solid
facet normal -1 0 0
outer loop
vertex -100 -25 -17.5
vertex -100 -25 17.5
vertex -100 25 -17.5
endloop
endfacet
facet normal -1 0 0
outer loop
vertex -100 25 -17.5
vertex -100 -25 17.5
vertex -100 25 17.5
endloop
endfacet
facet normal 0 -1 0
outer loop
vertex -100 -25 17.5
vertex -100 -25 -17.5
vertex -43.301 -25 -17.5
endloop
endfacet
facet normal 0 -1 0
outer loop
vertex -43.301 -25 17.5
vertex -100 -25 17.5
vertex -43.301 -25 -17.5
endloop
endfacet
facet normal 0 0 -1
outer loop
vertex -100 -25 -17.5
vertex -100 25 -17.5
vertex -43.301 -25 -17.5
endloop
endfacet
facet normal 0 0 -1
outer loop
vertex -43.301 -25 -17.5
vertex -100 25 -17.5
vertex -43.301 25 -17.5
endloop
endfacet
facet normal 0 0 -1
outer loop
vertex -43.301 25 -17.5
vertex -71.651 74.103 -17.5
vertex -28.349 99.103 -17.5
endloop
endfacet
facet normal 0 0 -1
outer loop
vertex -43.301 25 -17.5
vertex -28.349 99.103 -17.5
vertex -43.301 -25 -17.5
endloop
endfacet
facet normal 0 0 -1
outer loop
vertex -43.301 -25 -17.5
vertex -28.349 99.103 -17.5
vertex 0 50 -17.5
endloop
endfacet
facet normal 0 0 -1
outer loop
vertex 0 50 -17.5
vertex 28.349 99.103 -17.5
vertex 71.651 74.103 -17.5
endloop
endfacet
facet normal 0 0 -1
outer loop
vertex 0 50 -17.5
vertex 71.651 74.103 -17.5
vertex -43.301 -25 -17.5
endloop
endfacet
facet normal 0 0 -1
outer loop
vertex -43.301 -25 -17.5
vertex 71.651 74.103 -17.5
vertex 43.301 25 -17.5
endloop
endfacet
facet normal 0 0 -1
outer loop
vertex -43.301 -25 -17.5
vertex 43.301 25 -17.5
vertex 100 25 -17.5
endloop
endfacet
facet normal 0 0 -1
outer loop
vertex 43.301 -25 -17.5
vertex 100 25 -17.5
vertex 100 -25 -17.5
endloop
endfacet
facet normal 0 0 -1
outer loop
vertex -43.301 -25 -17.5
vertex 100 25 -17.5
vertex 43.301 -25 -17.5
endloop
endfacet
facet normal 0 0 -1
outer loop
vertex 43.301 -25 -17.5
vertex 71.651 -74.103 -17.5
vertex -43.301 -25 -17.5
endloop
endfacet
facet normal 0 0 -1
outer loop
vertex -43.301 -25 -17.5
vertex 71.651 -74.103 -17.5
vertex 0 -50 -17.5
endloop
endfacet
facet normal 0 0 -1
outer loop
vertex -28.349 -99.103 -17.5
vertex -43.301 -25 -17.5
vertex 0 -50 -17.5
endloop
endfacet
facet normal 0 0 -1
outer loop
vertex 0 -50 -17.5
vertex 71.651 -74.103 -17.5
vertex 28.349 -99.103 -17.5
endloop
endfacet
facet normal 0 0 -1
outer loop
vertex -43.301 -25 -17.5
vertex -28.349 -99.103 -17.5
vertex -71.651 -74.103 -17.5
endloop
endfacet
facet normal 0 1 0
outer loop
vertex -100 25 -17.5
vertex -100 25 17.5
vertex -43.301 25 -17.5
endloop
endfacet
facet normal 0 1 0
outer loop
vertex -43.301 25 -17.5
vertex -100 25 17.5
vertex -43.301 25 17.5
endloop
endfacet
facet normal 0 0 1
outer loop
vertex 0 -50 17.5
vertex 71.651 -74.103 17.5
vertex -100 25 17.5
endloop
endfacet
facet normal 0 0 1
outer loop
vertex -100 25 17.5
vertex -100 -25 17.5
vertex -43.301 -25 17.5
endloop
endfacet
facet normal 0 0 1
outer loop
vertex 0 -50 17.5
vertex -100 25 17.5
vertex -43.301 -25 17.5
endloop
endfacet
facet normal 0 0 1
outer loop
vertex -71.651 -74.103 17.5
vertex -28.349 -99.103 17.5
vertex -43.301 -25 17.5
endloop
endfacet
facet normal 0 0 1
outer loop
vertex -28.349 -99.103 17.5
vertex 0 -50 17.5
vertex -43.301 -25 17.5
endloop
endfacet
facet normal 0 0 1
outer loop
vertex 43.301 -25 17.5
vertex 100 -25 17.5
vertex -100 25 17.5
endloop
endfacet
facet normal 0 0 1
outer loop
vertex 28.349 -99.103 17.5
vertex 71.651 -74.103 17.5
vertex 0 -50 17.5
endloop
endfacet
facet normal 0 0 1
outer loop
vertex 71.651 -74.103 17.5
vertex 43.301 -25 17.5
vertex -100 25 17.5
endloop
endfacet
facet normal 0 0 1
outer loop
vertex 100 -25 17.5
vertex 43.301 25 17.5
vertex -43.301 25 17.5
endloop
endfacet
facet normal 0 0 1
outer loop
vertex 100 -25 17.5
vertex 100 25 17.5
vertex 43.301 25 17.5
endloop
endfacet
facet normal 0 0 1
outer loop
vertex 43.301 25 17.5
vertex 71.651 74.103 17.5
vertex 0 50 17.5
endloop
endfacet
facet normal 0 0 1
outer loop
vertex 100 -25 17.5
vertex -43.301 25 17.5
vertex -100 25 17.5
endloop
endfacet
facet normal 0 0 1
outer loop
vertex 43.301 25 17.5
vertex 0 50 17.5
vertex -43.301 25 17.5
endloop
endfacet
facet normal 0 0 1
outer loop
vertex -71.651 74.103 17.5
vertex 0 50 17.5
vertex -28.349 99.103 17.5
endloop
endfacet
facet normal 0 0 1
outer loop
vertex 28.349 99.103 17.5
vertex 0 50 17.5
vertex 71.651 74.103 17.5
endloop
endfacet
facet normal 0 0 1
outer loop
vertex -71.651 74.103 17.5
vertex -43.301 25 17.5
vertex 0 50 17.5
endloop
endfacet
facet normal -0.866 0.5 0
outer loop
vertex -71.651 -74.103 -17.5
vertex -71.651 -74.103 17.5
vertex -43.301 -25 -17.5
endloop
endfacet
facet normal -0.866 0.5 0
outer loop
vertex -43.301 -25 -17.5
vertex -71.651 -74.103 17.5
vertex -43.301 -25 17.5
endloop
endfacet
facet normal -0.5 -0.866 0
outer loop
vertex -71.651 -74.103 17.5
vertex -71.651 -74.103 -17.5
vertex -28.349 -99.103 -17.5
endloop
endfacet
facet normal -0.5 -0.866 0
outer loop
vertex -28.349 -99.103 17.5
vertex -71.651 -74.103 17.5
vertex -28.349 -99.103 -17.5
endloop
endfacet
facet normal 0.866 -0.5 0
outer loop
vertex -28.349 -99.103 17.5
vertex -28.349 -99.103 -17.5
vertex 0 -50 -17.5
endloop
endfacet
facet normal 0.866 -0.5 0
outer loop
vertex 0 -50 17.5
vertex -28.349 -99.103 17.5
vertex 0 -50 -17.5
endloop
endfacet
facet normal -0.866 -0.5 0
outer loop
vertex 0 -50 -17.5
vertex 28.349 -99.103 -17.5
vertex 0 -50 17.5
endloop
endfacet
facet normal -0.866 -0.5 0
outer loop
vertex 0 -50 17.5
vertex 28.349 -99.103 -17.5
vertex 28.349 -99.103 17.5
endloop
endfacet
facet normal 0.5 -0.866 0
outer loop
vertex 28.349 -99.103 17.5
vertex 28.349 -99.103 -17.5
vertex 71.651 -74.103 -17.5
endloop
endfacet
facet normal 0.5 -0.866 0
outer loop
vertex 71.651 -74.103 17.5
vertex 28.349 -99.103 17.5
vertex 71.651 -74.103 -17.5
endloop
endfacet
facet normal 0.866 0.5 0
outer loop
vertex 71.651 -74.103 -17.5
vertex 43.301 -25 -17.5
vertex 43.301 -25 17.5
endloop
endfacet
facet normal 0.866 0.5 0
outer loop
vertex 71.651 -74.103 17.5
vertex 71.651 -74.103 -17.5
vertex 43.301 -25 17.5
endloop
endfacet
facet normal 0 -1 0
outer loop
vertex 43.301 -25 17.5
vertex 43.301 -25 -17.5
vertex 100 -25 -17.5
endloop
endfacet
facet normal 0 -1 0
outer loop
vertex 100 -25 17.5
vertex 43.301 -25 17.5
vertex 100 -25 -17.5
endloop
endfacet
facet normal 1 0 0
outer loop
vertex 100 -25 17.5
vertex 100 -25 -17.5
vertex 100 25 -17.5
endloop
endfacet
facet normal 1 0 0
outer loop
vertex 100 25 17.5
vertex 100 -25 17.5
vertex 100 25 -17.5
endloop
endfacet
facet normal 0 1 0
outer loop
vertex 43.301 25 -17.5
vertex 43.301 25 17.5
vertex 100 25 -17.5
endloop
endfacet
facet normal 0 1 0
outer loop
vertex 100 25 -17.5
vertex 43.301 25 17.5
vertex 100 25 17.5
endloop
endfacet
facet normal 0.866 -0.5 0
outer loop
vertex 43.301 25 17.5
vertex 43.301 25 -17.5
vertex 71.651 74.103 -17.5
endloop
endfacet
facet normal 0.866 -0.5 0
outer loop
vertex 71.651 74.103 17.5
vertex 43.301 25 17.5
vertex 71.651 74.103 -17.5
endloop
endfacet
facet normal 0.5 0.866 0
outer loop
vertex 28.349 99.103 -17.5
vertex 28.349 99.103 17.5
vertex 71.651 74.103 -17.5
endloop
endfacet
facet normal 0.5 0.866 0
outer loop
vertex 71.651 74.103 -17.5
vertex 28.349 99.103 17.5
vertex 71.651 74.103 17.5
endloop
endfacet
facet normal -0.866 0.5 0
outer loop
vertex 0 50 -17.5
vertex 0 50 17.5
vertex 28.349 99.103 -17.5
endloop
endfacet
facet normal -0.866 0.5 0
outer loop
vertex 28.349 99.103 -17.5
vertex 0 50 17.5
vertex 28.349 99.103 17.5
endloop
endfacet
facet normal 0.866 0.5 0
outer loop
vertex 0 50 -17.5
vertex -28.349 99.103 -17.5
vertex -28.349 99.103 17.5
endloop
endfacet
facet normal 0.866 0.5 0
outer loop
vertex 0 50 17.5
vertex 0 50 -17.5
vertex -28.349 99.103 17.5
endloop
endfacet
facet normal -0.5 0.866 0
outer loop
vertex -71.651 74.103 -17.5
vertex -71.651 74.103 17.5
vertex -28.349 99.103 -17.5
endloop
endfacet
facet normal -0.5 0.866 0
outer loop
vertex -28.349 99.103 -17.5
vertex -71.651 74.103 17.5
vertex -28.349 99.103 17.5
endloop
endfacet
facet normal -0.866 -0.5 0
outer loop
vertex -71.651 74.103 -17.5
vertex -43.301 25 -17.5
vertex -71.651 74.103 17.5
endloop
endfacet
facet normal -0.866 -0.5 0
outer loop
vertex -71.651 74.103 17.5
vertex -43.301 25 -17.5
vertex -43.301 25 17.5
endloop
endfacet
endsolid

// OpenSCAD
rotate([0,0,120]) cube([200,50,35], center=true);
rotate([0,0,240]) cube([200,50,35], center=true);
rotate([0,0,360]) cube([200,50,35], center=true);
